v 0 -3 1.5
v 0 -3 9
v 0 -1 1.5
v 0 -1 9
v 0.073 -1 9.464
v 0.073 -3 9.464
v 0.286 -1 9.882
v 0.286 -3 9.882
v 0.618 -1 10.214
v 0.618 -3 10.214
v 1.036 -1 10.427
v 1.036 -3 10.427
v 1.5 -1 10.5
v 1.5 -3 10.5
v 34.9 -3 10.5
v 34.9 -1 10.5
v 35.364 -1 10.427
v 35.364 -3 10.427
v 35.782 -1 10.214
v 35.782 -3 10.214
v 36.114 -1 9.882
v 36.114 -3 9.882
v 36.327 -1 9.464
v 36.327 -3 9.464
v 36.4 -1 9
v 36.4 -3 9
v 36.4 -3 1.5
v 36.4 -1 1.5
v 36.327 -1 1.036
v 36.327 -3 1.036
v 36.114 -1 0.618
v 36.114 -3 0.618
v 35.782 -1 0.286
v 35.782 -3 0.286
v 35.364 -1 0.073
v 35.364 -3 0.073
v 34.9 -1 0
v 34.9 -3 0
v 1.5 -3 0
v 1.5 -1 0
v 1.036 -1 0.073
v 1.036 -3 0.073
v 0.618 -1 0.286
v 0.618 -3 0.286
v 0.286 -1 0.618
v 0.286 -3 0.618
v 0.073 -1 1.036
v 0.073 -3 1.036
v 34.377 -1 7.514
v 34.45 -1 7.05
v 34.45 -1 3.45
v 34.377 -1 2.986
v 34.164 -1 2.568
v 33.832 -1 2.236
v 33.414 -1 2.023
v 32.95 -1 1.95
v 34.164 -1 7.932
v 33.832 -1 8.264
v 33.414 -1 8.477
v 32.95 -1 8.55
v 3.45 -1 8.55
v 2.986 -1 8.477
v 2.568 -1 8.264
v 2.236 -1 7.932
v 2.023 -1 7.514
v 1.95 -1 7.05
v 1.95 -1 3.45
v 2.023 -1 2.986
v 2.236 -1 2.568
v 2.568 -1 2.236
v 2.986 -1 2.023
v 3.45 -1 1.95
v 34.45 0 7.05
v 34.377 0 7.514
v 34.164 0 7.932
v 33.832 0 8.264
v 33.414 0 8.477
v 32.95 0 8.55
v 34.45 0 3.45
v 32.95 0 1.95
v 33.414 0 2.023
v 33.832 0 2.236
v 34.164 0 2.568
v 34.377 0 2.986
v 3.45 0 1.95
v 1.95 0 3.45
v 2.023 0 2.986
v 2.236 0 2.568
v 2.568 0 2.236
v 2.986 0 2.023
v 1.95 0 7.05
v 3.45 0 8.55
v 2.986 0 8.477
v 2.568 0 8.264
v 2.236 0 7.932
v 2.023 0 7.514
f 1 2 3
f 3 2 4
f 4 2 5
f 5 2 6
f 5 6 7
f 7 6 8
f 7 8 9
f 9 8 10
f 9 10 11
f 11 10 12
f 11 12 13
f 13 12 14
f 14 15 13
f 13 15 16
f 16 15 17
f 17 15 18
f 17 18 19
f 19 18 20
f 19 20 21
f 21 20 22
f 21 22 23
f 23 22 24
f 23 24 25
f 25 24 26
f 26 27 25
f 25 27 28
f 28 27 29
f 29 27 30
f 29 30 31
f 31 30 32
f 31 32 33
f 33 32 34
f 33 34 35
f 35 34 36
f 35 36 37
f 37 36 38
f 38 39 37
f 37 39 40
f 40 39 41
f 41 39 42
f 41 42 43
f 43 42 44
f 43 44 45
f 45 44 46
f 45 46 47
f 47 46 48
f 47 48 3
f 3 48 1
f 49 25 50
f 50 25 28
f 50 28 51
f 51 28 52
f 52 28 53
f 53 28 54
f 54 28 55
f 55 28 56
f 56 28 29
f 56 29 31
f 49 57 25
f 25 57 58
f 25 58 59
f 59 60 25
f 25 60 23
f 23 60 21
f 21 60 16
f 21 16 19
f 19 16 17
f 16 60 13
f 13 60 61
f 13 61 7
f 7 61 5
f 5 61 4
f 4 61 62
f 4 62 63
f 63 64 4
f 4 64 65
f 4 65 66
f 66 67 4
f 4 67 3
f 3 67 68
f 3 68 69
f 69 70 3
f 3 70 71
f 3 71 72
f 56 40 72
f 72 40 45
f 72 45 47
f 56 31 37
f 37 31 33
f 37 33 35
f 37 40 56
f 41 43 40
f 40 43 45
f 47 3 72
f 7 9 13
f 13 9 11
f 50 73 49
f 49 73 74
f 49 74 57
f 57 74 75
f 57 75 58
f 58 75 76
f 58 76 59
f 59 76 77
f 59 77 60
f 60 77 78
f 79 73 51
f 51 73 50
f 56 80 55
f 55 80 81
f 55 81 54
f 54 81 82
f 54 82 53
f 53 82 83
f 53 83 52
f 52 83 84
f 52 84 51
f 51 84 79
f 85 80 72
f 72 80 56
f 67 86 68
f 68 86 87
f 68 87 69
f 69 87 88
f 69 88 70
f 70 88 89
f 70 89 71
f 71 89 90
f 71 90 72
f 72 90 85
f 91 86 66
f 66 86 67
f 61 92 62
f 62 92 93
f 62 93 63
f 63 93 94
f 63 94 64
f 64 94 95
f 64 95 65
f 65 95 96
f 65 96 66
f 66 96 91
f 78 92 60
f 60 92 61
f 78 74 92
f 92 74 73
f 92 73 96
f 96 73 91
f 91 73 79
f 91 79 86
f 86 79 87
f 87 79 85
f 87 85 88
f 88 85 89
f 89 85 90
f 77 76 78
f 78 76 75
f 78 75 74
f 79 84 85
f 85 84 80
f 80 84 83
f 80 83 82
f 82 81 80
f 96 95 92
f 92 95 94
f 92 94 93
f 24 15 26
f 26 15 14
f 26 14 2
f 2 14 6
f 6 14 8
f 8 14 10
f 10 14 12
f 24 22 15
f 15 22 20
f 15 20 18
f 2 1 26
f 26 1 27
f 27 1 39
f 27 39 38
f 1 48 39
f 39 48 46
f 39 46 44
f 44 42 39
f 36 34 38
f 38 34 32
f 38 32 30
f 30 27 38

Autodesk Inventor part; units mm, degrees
ref_plane "YZ Plane" through (0, 0, 0) normal (1, 0, 0) x (0, 1, 0)
ref_plane "XZ Plane" through (0, 0, 0) normal (0, 1, 0) x (-1, 0, 0)
ref_plane "XY Plane" through (0, 0, 0) normal (0, 0, 1) x (1, 0, 0)
sketch "Эскиз1" plane through (0, 0, 0) normal (0, 1, 0) x (-1, 0, 0)
  line L0 (-3.45, 1.95) -> (-32.95, 1.95)
  line L1 (-34.45, 3.45) -> (-34.45, 7.05)
  line L2 (-32.95, 8.55) -> (-3.45, 8.55)
  line L3 (-1.95, 7.05) -> (-1.95, 3.45)
  line L4 (-1.5, 0) -> (-34.9, 0)
  line L5 (-36.4, 1.5) -> (-36.4, 9)
  line L6 (-34.9, 10.5) -> (-1.5, 10.5)
  line L7 (0, 9) -> (0, 1.5)
  arc A0 (-3.45, 1.95) -> (-1.95, 3.45) centre (-3.45, 3.45) ccw
  arc A1 (-1.95, 7.05) -> (-3.45, 8.55) centre (-3.45, 7.05) ccw
  arc A2 (-32.95, 8.55) -> (-34.45, 7.05) centre (-32.95, 7.05) ccw
  arc A3 (-34.45, 3.45) -> (-32.95, 1.95) centre (-32.95, 3.45) ccw
  arc A4 (-36.4, 1.5) -> (-34.9, 0) centre (-34.9, 1.5) ccw
  arc A5 (-34.9, 10.5) -> (-36.4, 9) centre (-34.9, 9) ccw
  arc A6 (0, 9) -> (-1.5, 10.5) centre (-1.5, 9) ccw
  arc A7 (-1.5, 0) -> (0, 1.5) centre (-1.5, 1.5) ccw
  point P0 (0, 0)
  point P1 (-34.45, 1.95)
  point P2 (-1.95, 8.55)
  point P3 (0, 0)
  point P4 (-36.4, 10.5)
  dimension "d6" = 1.5
  dimension "d7" = 1.5
  dimension "d8" = 1.5
  dimension "d9" = 1.5
  dimension "d10" = 1.5
  dimension "d11" = 1.5
  dimension "d12" = 1.5
  dimension "d13" = 1.5
extrude "Выдавливание3" add sketch "Эскиз1" against normal blind 1 contours L0 A3 L1 A2 L2 A1 L3 A0
extrude "Выдавливание4" add sketch "Эскиз1" against normal blind 2 from surface at -1 contours L0 A3 L1 A2 L2 A1 L3 A0 | L4 A4 L5 A5 L6 A6 L7 A7
properties part number "screen3"
